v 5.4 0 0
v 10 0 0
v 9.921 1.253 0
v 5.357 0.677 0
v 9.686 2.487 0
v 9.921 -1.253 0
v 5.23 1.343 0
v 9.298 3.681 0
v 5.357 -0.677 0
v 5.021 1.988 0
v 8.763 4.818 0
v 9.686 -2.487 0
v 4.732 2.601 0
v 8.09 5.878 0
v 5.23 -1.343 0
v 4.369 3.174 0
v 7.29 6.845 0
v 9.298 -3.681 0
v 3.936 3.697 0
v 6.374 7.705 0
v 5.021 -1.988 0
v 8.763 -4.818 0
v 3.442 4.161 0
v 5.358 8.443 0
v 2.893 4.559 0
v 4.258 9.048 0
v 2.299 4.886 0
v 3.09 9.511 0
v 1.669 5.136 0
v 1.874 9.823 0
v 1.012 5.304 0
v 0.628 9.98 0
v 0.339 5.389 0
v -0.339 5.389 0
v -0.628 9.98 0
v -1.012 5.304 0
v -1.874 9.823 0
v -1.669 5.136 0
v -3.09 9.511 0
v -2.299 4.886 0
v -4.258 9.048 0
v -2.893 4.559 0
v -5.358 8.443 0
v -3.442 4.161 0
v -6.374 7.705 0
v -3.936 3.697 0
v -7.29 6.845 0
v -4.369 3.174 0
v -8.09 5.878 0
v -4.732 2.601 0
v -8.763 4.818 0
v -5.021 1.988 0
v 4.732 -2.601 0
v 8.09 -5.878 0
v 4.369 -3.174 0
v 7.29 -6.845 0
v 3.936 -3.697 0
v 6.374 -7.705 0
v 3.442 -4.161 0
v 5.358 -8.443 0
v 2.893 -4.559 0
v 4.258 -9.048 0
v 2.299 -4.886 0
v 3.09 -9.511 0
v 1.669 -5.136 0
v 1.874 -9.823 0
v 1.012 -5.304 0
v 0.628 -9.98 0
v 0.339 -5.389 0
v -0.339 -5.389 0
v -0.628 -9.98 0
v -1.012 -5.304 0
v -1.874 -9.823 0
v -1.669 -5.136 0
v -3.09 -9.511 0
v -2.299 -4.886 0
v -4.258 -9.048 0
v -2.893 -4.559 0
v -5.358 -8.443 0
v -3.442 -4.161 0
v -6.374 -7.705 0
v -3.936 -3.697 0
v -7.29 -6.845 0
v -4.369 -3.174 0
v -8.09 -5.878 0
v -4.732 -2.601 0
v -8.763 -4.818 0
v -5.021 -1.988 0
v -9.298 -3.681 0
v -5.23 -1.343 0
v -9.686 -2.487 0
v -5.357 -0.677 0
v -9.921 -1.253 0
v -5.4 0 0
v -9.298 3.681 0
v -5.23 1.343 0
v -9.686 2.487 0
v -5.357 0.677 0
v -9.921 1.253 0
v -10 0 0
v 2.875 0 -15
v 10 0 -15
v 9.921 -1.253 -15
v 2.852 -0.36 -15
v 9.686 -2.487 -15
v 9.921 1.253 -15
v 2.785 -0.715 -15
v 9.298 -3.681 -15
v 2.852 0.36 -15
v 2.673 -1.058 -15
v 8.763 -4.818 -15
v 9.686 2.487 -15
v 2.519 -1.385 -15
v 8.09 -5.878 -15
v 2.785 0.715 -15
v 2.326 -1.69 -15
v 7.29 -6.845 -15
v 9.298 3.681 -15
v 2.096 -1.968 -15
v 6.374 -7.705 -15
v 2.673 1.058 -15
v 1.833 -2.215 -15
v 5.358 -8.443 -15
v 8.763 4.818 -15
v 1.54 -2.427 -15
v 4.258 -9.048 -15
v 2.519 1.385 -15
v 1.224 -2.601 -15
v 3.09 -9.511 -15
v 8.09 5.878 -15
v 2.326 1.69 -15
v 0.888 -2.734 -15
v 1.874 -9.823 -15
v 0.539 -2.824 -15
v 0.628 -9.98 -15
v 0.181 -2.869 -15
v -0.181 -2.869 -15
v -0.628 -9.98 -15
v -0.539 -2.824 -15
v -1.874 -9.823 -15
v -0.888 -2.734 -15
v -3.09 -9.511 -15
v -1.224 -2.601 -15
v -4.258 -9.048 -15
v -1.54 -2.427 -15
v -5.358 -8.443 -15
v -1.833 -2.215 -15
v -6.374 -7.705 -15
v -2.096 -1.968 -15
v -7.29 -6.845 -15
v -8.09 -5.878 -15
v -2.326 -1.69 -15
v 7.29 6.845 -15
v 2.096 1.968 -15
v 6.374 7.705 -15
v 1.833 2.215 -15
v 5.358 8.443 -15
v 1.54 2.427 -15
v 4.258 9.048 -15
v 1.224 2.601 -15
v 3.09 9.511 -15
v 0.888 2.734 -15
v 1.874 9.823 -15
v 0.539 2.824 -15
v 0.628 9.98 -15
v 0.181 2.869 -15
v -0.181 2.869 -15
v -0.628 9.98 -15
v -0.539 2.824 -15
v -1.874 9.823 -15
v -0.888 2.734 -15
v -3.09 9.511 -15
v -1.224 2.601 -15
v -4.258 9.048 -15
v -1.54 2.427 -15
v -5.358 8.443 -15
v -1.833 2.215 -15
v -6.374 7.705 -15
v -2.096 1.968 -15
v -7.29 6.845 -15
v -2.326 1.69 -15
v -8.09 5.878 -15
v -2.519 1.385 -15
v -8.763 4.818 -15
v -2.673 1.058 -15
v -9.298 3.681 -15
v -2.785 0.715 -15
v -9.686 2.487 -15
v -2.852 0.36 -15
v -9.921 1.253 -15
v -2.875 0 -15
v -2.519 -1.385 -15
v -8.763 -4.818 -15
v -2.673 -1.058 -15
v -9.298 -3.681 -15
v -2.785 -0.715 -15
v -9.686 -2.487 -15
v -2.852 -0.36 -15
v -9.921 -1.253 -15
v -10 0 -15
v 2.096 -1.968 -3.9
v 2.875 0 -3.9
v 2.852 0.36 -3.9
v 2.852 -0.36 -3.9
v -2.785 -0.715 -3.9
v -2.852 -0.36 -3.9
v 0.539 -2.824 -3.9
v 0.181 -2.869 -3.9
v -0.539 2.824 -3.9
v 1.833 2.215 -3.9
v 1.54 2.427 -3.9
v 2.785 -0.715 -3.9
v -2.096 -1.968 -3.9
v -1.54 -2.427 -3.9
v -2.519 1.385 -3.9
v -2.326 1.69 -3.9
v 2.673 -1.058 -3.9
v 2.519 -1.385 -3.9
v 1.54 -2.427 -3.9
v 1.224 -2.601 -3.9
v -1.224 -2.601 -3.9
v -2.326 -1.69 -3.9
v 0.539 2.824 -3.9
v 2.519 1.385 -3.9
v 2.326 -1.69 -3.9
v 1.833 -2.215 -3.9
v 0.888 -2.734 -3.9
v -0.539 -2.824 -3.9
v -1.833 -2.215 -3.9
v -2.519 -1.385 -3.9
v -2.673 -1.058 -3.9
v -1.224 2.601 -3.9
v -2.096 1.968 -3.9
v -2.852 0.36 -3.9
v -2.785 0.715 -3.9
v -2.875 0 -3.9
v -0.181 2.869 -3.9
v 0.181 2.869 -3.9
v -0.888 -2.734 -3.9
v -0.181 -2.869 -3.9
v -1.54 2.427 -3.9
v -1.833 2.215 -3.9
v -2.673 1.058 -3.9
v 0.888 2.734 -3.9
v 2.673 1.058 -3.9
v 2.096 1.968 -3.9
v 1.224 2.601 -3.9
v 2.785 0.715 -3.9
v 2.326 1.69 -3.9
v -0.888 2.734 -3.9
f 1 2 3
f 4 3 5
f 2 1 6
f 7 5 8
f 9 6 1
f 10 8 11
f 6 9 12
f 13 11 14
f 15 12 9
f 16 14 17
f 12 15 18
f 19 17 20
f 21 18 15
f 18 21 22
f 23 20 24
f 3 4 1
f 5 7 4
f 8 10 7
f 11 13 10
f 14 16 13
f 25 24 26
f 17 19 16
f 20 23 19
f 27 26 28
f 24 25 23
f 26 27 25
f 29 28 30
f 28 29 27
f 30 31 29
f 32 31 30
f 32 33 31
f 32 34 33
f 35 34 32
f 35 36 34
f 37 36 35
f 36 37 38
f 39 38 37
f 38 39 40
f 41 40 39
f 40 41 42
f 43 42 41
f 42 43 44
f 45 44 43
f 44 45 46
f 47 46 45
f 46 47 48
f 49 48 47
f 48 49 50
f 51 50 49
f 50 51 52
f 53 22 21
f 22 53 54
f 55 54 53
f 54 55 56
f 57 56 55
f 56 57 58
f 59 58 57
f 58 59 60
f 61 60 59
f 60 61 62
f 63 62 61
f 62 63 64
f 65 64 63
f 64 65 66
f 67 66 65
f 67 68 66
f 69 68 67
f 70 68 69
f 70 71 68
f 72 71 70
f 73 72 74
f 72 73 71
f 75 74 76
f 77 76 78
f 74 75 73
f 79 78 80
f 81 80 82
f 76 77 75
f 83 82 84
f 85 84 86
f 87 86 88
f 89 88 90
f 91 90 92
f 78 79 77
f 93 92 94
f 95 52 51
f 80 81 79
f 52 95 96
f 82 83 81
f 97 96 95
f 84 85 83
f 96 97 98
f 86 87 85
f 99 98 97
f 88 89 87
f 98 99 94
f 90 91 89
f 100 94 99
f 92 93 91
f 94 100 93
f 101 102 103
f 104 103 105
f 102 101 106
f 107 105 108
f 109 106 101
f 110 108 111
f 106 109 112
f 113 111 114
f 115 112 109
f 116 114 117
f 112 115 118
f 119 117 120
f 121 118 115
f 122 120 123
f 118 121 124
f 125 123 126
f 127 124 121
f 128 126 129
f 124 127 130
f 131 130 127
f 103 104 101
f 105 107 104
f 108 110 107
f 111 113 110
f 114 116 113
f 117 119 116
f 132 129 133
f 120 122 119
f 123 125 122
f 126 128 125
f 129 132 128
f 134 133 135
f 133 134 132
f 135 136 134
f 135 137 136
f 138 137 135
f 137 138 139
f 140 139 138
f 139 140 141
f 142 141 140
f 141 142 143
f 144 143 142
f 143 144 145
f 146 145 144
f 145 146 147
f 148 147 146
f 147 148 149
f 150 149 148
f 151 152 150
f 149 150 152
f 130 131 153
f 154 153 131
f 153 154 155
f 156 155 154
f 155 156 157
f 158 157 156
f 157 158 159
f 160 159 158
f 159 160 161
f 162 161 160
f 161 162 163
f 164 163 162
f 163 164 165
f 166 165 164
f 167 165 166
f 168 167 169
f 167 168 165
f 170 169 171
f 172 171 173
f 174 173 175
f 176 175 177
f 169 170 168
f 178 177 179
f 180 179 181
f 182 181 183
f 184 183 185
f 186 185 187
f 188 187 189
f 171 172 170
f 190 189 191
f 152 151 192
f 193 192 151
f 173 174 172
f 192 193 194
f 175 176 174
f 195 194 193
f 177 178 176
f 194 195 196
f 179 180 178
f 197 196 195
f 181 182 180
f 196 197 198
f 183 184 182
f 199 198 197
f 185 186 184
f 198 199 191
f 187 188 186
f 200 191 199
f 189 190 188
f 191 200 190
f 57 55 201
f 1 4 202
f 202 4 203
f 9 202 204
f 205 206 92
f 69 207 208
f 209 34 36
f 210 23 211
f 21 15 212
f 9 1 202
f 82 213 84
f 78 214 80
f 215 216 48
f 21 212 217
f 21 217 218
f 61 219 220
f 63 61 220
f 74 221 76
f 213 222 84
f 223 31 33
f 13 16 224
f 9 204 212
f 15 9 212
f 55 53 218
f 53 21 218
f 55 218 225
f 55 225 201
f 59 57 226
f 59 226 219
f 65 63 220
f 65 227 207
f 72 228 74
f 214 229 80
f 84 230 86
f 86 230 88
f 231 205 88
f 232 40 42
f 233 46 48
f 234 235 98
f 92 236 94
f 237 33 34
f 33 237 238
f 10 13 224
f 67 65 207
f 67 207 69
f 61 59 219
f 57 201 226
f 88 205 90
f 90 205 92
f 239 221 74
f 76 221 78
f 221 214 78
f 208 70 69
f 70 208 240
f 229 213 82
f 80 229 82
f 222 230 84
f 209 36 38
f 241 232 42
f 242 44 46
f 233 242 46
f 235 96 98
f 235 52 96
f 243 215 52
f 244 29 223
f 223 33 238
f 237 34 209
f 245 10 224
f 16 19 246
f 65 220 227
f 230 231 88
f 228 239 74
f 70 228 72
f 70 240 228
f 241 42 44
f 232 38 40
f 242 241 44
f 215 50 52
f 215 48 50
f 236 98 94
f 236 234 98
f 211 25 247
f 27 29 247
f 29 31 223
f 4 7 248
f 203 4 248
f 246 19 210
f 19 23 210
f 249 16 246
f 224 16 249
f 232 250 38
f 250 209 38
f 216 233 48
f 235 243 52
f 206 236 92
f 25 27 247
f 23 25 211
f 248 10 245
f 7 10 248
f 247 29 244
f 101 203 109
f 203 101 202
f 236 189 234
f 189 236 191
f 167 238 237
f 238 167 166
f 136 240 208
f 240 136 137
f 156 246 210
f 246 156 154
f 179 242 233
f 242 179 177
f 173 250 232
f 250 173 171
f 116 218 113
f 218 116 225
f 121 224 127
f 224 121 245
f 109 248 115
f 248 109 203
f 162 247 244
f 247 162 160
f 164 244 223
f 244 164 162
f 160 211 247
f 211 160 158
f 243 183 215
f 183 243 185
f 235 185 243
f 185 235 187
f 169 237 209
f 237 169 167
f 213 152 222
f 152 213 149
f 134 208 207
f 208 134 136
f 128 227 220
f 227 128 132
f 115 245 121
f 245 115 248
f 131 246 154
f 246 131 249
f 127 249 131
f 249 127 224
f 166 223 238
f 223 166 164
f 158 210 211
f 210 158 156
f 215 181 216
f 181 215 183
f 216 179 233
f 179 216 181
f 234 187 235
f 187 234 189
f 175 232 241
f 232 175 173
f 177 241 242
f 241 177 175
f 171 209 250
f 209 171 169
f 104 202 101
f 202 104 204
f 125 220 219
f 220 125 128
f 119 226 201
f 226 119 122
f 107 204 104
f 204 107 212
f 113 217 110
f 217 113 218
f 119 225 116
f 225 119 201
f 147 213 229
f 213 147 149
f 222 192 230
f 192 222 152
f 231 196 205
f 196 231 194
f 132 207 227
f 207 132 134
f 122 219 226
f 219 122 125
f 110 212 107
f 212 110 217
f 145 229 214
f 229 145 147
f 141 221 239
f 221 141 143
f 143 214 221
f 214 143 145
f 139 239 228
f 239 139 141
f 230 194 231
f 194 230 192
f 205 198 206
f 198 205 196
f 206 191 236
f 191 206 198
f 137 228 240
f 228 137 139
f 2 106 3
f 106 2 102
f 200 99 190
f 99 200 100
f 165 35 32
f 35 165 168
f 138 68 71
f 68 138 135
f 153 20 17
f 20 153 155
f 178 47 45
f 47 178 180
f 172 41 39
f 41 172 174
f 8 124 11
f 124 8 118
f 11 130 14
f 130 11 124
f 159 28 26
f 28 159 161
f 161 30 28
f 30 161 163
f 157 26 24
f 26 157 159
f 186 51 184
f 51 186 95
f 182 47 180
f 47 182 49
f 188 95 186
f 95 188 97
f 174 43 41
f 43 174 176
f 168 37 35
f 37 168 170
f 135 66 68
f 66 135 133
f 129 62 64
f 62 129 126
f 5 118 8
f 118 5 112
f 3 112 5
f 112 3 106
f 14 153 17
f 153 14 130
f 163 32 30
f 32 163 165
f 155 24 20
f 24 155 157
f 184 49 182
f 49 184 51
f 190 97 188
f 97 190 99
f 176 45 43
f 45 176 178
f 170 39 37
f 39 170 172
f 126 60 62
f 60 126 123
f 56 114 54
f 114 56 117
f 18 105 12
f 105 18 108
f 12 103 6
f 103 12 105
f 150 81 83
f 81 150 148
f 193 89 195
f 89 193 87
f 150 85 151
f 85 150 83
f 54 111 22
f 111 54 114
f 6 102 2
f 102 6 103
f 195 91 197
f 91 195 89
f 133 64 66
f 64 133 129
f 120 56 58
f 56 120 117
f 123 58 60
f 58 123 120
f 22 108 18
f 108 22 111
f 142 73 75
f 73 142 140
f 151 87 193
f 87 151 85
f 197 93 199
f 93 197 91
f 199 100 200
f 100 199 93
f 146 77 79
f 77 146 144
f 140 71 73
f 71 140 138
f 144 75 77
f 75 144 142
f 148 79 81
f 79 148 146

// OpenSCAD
$fn = 50;


difference() {
	union() {
		translate(v = [0, 0, -15.0000000000]) {
			cylinder(h = 15, r = 10.0000000000);
		}
		cylinder(h = 0, r = 19.0000000000);
	}
	union() {
		translate(v = [0, 0, 0]) {
			rotate(a = [0, 0, 0]) {
				difference() {
					union() {
						#translate(v = [0, 0, -15.0000000000]) {
							cylinder(h = 15, r = 2.6000000000);
						}
						#translate(v = [0, 0, -3.9000000000]) {
							cylinder(h = 3.9000000000, r = 10.0000000000, r1 = 2.8750000000, r2 = 5.4000000000);
						}
						#translate(v = [0, 0, -15.0000000000]) {
							cylinder(h = 15, r = 2.8750000000);
						}
						#translate(v = [0, 0, -15.0000000000]) {
							cylinder(h = 15, r = 2.6000000000);
						}
					}
					union();
				}
			}
		}
	}
}
